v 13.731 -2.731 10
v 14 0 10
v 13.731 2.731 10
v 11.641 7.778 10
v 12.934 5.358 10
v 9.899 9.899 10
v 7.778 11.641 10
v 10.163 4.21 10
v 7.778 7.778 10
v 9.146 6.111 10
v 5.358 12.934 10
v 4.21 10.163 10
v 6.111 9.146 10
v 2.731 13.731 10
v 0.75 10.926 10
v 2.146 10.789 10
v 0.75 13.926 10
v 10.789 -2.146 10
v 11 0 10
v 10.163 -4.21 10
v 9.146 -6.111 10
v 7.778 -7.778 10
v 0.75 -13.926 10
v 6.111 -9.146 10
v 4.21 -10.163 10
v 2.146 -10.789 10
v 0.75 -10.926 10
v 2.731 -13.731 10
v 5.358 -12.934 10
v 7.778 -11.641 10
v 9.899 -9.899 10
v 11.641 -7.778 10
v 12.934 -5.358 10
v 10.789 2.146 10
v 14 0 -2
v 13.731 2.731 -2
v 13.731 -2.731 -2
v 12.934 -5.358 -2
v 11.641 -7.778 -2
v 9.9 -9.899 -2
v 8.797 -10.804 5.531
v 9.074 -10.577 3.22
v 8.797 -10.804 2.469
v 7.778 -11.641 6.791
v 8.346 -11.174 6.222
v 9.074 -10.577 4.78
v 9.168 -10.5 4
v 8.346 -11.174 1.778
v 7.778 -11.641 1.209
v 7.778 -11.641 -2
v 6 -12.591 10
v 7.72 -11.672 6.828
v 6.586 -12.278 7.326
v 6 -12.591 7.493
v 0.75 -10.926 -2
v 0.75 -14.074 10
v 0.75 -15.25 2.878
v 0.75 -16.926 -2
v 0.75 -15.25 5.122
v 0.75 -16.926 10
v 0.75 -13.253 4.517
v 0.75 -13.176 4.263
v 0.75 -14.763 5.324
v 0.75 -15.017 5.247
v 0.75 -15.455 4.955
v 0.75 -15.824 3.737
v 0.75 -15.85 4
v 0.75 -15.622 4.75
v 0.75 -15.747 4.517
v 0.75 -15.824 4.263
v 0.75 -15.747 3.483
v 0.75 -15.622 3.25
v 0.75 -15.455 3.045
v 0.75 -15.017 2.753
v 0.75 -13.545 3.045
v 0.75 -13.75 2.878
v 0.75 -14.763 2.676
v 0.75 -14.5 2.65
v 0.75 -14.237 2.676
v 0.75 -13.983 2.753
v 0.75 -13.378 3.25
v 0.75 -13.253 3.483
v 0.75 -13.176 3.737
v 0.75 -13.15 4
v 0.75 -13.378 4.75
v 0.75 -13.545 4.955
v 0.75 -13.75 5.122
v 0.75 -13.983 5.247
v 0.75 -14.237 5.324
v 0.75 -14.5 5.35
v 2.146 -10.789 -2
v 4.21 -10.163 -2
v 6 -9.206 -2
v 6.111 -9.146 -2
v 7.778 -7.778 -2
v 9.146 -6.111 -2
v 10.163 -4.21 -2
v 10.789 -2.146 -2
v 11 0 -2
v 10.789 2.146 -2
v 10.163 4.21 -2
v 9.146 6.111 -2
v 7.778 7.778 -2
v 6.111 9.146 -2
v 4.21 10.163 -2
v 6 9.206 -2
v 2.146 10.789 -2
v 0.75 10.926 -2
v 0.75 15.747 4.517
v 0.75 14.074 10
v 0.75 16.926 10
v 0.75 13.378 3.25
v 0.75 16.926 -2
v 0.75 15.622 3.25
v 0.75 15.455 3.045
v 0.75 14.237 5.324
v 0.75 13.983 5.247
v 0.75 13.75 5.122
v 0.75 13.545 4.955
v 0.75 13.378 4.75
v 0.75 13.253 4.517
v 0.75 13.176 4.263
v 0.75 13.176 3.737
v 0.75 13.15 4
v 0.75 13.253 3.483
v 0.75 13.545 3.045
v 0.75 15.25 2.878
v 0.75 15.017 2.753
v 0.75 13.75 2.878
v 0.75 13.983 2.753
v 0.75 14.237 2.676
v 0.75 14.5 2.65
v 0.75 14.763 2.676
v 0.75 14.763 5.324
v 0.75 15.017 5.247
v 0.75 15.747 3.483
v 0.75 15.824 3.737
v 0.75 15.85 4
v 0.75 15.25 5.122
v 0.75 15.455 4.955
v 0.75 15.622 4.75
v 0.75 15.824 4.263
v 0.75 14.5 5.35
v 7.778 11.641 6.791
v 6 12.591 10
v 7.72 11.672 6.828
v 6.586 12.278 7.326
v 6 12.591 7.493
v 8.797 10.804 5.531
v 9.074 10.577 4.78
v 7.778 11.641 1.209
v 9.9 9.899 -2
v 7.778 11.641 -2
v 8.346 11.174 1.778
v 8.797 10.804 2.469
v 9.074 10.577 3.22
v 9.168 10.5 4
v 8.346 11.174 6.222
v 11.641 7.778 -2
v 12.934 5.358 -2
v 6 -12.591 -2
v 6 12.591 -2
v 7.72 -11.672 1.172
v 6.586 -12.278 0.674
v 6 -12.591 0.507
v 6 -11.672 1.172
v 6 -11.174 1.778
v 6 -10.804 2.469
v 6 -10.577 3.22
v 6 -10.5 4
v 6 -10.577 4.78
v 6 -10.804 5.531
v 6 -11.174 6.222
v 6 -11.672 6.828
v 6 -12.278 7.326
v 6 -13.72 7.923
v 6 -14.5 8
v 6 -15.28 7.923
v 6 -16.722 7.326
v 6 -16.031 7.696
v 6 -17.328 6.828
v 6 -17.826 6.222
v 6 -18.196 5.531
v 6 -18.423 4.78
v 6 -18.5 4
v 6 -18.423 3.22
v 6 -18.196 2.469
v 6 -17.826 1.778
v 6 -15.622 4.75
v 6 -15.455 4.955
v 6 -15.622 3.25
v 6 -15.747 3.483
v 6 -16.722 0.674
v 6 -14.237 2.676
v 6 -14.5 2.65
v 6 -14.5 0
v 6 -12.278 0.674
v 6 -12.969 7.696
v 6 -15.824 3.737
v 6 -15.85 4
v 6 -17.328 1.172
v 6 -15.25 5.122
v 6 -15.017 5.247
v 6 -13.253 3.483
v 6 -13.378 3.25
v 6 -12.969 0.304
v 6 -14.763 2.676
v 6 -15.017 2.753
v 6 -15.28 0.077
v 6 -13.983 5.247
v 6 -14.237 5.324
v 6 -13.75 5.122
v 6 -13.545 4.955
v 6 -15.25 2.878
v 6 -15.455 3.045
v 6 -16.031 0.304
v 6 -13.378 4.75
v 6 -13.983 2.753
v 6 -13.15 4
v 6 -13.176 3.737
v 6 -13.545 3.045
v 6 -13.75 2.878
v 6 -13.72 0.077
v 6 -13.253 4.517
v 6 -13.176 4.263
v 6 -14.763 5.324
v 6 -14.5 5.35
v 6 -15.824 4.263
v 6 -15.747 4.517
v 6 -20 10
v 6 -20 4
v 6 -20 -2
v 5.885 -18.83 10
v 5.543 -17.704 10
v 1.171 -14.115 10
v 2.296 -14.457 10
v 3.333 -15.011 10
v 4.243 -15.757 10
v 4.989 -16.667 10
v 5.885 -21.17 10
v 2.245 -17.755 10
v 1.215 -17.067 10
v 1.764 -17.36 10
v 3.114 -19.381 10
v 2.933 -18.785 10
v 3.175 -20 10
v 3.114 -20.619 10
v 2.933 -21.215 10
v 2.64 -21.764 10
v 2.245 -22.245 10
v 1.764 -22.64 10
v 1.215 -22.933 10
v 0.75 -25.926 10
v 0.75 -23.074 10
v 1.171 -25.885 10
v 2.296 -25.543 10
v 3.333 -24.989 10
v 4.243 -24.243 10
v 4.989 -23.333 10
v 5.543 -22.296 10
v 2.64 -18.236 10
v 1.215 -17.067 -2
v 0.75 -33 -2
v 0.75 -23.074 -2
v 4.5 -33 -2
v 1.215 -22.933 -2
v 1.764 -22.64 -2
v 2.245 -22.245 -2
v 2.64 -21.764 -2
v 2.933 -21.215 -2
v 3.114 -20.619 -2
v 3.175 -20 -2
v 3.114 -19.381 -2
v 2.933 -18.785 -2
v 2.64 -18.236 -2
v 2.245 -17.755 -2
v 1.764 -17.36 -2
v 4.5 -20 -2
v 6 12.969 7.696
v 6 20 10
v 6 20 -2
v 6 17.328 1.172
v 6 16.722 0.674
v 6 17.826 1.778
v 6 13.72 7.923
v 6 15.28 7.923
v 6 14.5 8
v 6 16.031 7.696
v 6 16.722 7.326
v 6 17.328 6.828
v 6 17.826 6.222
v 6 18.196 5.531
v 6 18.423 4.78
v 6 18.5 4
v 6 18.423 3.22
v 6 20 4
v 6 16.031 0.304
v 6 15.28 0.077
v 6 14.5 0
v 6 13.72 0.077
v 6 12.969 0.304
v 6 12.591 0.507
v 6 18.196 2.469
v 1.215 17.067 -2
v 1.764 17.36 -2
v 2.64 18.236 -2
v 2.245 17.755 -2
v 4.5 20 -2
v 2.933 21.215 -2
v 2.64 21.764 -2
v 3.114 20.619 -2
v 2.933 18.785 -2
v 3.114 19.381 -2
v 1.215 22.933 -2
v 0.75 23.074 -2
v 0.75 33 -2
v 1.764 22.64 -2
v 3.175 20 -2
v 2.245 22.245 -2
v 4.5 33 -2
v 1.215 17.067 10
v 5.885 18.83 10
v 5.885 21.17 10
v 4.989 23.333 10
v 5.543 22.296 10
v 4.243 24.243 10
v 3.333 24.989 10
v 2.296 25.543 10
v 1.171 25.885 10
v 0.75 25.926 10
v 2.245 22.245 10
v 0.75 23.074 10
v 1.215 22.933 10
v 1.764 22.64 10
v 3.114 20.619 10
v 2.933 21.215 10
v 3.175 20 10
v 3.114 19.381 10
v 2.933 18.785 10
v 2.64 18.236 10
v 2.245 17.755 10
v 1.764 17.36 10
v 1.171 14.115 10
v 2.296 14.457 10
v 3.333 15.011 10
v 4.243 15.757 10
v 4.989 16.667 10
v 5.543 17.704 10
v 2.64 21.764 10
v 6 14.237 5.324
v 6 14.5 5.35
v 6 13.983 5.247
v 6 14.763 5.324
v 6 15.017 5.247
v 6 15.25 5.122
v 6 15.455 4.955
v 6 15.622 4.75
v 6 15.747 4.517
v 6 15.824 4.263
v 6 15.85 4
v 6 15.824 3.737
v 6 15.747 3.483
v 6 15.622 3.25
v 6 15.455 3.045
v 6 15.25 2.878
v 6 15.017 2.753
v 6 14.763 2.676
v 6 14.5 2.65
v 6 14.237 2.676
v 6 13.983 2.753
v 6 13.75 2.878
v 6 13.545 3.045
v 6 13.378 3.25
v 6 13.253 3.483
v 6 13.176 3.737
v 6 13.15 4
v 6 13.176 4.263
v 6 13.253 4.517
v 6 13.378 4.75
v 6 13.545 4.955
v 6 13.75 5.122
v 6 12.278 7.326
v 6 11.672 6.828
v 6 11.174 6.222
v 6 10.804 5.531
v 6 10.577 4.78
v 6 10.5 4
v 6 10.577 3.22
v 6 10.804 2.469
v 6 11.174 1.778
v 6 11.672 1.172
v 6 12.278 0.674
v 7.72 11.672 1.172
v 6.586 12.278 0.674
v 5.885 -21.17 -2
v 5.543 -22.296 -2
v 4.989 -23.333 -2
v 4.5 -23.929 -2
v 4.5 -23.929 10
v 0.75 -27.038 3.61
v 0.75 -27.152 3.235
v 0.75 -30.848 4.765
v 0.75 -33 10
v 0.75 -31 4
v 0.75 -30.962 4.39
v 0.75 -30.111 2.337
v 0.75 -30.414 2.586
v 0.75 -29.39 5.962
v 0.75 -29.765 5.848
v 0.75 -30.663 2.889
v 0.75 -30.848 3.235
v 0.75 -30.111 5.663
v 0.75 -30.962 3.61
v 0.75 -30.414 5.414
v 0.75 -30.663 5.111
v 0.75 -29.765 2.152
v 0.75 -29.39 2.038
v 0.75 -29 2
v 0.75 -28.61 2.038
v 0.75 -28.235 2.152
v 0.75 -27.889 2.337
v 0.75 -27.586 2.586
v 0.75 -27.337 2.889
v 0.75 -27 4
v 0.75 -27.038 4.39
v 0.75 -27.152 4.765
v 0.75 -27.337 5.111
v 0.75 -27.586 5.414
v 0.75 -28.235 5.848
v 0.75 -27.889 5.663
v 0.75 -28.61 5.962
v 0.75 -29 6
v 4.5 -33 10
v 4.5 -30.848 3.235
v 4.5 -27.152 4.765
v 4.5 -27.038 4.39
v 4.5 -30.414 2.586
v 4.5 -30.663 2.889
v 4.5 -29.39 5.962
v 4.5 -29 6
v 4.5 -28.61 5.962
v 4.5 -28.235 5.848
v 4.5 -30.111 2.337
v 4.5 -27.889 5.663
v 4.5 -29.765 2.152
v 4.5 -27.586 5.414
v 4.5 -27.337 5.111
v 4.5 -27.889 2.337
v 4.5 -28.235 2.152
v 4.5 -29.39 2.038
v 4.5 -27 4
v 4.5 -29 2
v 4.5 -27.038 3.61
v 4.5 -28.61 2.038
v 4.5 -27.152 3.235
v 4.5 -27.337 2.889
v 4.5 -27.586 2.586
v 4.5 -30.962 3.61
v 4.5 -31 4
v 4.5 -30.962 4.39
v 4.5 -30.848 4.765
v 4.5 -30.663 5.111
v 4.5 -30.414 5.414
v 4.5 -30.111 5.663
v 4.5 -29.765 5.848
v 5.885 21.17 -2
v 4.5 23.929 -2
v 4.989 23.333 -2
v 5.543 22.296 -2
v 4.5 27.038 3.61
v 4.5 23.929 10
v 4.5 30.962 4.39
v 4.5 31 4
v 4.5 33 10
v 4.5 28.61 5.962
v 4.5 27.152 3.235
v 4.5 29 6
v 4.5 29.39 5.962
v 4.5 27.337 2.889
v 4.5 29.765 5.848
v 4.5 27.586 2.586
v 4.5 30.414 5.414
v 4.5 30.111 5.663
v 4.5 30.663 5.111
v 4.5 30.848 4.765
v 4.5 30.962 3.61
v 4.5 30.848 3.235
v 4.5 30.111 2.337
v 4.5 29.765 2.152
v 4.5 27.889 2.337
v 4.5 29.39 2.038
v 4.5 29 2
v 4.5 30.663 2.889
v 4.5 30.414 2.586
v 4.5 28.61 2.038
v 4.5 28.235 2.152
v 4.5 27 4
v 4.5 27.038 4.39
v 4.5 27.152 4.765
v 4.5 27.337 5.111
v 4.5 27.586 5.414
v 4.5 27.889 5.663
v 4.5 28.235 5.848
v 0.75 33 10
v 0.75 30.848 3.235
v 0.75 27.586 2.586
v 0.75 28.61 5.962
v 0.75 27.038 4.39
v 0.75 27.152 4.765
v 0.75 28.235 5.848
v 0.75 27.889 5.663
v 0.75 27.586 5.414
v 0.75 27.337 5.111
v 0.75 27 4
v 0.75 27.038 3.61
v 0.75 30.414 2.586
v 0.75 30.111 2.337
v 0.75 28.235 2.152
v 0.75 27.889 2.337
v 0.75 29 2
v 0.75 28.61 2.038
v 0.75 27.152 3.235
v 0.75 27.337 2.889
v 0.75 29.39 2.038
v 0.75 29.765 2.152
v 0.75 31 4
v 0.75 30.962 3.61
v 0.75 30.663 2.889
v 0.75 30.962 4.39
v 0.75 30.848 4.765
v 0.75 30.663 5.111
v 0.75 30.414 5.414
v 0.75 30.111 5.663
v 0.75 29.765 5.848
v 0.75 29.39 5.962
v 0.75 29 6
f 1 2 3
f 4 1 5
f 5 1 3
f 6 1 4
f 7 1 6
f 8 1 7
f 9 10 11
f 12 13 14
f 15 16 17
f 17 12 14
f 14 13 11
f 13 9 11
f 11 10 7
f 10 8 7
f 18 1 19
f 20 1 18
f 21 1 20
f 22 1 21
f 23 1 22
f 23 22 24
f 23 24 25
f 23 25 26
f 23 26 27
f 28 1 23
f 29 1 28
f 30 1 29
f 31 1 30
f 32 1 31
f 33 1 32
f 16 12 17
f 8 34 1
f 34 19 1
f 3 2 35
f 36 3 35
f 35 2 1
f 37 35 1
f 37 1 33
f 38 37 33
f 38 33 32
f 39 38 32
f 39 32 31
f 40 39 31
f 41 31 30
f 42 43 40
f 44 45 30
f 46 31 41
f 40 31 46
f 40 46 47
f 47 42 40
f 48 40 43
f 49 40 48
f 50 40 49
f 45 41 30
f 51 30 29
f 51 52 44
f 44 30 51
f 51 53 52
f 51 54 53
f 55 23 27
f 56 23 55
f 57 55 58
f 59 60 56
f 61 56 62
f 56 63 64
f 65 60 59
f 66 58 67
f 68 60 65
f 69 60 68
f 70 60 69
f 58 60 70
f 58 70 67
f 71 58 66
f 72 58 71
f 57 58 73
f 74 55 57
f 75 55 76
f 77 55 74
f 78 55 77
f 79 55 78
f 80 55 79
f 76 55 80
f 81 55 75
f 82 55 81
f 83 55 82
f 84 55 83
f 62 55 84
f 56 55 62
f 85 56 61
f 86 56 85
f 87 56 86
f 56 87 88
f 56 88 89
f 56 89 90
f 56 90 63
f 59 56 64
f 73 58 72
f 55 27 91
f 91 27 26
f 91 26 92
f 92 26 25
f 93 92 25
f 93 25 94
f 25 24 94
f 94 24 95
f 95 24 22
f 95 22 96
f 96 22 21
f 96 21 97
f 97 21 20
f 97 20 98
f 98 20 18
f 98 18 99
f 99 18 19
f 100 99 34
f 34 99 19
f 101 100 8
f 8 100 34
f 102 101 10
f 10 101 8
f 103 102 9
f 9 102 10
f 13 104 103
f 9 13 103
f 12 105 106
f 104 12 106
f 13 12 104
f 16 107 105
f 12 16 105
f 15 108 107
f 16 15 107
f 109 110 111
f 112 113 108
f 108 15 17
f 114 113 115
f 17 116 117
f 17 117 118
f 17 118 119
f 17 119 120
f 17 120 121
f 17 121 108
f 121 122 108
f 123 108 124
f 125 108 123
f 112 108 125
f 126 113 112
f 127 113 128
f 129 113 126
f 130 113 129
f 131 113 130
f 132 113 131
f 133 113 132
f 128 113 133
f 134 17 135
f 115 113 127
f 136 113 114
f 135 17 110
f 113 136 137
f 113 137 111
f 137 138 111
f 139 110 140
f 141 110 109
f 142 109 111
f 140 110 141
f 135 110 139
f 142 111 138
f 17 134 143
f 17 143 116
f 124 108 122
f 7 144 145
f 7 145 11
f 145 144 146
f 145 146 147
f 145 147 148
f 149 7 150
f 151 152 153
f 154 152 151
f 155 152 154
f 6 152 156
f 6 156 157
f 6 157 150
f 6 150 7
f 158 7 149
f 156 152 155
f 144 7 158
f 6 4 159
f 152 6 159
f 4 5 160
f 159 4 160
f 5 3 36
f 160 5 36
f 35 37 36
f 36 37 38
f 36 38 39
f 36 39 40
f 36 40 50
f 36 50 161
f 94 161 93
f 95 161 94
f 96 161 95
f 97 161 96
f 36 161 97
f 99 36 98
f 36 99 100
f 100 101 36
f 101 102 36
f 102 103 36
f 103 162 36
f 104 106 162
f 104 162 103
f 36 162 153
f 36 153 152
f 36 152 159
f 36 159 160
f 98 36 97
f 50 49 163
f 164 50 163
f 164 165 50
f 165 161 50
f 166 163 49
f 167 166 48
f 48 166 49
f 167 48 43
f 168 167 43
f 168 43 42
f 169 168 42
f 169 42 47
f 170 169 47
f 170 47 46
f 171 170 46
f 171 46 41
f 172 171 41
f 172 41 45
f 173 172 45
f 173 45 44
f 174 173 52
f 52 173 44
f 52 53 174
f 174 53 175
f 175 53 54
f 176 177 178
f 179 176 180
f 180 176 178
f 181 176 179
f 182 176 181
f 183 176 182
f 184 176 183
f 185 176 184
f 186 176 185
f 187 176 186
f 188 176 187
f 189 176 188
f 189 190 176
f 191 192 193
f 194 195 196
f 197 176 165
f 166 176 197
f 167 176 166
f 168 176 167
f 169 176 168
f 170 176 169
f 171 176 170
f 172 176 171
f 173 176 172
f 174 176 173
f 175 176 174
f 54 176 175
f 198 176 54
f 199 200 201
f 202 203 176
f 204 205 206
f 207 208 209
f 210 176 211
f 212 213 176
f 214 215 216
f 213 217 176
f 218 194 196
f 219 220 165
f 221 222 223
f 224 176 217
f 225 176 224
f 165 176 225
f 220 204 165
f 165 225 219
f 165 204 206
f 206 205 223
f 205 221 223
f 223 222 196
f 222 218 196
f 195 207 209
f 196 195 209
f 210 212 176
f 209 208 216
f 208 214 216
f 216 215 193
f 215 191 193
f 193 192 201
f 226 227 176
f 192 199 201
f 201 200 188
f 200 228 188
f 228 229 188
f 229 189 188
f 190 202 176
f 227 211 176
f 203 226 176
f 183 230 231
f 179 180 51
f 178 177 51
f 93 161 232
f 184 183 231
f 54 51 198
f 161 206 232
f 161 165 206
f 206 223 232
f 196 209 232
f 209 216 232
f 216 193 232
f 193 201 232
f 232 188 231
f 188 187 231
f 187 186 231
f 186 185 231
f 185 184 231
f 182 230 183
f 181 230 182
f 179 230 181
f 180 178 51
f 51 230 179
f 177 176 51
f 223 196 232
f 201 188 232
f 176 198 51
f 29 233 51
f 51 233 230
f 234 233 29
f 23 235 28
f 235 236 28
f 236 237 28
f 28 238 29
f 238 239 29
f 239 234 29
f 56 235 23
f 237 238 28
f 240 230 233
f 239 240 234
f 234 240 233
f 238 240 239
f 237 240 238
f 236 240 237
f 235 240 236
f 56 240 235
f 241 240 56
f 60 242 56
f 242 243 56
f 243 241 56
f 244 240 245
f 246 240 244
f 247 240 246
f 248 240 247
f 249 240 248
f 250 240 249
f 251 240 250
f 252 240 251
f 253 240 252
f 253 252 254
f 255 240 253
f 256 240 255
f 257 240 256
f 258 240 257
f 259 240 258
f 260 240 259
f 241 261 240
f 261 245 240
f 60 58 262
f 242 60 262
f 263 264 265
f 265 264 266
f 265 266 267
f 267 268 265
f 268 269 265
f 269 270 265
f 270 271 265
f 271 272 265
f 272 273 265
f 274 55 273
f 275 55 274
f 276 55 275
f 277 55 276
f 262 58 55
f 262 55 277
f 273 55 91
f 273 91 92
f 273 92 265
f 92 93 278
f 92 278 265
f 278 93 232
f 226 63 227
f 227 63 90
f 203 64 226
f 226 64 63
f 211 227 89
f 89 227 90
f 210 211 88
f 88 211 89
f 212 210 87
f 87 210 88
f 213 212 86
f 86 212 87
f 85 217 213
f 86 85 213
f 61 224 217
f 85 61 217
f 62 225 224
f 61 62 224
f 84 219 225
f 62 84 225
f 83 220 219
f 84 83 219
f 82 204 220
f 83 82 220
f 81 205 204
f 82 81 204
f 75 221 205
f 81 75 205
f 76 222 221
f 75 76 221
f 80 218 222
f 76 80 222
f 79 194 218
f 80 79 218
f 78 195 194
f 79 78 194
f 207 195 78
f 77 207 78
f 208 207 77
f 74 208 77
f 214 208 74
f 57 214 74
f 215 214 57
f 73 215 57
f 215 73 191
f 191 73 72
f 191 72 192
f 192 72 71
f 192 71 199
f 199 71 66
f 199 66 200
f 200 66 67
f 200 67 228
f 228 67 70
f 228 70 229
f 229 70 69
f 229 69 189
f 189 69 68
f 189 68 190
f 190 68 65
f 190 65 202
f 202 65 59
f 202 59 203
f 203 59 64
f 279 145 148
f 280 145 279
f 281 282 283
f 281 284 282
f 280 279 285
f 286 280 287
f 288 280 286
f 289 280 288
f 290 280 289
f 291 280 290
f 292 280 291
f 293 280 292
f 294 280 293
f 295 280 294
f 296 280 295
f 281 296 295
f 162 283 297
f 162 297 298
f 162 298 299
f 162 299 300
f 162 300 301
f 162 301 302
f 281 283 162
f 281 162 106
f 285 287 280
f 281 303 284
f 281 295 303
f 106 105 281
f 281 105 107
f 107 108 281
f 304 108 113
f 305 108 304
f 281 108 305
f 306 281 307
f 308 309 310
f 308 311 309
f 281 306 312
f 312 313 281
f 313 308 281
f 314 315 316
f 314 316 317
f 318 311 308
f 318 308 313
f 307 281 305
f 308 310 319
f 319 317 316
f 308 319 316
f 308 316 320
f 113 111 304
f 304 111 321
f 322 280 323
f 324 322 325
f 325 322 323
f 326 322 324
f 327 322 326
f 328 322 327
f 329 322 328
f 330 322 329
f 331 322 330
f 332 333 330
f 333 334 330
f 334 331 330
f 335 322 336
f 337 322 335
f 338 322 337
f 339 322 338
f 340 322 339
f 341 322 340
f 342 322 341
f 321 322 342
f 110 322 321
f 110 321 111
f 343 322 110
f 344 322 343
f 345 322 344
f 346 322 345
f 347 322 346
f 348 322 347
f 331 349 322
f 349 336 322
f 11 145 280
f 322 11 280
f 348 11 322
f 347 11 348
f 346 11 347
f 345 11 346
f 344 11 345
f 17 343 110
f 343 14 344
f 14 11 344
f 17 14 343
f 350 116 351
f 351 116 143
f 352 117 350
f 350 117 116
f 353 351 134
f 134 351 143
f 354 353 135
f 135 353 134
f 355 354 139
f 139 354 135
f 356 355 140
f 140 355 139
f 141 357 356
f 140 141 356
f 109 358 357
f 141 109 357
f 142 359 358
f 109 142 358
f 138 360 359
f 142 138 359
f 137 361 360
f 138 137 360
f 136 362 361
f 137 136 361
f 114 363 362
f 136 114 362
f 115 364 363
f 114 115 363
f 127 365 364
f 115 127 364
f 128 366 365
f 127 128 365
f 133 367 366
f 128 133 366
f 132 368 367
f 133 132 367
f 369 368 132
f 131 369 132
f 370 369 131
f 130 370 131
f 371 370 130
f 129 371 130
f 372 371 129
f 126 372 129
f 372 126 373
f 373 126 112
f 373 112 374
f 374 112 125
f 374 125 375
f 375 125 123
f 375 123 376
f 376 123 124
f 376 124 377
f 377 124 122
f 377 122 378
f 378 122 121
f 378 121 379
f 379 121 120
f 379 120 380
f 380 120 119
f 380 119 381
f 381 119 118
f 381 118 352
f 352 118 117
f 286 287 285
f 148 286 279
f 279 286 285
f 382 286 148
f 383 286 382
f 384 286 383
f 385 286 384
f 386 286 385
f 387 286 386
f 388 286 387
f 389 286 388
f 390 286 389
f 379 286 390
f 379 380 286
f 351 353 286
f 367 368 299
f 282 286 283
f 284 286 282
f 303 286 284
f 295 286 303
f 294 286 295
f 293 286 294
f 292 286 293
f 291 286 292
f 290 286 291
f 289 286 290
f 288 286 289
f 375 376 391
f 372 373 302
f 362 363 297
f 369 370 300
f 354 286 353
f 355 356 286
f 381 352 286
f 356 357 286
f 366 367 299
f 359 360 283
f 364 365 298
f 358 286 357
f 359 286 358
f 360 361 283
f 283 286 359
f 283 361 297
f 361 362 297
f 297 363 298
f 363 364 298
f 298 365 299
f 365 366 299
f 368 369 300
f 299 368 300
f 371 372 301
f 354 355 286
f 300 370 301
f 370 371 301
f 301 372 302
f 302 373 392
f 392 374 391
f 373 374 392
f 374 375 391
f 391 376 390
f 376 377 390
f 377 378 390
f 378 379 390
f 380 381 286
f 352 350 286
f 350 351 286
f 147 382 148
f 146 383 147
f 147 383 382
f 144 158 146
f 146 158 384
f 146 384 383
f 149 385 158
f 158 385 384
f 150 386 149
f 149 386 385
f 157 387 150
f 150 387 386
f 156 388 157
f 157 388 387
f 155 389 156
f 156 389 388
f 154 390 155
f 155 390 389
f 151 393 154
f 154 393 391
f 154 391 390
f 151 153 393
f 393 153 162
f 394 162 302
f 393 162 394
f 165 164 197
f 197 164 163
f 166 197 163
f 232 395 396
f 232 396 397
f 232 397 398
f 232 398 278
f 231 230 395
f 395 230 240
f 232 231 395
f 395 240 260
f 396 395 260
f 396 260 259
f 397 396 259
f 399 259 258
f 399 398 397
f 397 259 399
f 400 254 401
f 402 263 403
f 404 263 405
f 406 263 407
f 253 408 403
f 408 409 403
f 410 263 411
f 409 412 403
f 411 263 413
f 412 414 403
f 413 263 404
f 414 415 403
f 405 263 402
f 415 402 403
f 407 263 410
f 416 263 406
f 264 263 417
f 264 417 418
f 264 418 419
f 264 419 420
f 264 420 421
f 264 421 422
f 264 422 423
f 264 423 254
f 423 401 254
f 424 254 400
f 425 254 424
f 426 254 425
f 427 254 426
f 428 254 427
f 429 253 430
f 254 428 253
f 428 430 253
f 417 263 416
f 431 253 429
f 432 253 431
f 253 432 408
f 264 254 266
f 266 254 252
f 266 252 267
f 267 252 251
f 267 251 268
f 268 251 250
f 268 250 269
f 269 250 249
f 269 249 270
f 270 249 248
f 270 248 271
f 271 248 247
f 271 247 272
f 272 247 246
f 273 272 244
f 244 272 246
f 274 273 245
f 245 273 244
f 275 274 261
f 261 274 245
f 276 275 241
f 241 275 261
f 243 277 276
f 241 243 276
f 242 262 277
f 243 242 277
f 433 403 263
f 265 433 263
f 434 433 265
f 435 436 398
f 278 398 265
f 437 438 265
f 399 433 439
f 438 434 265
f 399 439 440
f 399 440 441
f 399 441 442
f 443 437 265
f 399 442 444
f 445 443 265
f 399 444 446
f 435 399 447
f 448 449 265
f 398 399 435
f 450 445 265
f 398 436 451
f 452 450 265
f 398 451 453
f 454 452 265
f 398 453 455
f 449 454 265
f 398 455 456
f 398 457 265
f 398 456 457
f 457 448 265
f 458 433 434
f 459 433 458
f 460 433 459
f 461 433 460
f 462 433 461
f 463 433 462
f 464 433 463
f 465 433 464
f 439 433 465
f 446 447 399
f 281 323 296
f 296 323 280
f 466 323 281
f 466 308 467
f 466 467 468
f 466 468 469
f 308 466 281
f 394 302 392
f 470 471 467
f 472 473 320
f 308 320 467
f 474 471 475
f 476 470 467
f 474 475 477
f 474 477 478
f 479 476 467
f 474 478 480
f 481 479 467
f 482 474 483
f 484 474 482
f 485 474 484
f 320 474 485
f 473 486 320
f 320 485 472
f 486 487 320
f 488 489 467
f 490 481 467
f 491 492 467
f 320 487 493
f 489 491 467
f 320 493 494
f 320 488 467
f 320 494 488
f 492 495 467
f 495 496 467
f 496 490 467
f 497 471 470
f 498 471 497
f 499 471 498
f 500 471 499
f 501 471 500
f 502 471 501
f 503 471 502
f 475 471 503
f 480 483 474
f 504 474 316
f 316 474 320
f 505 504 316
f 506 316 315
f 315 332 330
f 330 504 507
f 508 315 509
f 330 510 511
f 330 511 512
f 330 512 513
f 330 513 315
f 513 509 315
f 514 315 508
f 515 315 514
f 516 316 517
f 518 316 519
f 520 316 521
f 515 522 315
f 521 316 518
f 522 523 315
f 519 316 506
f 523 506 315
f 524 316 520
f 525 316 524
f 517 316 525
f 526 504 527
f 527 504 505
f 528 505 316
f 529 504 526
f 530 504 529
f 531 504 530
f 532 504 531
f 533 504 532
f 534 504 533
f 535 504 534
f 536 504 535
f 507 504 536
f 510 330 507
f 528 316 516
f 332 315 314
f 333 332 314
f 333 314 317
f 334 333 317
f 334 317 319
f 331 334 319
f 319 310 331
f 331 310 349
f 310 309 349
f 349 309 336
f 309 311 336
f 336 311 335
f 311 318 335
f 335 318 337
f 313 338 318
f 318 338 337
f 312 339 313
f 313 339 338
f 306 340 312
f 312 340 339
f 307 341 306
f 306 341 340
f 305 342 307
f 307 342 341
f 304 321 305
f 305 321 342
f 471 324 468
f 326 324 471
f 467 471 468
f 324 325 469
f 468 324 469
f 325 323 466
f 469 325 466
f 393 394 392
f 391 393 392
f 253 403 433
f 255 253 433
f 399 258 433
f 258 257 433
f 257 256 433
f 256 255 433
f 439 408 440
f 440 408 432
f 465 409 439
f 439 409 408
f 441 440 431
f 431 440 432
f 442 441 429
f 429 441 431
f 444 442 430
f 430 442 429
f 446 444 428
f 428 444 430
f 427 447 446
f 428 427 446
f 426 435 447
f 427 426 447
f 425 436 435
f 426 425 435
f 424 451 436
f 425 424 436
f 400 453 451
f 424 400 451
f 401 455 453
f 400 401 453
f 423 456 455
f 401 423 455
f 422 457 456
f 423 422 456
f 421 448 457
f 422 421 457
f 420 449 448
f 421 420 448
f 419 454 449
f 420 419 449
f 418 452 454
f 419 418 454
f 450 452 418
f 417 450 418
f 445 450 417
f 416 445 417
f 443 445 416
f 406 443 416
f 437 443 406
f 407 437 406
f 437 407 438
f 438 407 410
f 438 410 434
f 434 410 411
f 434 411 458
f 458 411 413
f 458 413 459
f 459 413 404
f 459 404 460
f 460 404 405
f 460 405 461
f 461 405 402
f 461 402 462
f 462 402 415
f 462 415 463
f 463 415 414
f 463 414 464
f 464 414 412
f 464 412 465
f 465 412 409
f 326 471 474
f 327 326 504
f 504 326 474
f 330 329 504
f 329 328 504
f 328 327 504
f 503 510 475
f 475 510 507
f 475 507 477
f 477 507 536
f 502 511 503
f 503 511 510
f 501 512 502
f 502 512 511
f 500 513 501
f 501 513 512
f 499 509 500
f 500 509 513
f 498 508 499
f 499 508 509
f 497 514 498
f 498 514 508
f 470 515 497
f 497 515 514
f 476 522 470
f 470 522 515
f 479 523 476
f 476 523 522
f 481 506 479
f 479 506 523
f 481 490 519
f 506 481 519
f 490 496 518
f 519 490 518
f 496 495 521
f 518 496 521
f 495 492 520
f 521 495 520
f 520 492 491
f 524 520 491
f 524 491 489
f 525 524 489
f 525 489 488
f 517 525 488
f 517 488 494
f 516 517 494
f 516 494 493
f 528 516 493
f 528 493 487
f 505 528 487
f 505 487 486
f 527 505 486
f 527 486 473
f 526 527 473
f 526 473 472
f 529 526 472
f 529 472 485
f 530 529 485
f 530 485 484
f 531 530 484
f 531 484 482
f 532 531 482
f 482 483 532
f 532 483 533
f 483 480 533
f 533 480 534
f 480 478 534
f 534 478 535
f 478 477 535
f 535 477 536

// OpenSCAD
// file: cherry.scad
module cherry()
{
	difference()
	{
		cube([28,16,10], center=true);
		translate([11,5,0]) cylinder(h=12,r=3.3/2, center=true, $fn=32);
		translate([-11,-5,0]) cylinder(h=12,r=3.3/2, center=true, $fn=32);
	}
}
// file: sidemount.scad
include <cherry.scad>

module sidemount()
{
	difference()
	{
		union()
		{
			difference() 
			{
				translate([0,0,-8]) cube([12,66,25],center=true);
				translate([0,28,-13.5]) cube([13,16,20],center=true);
				translate([0,-28,-13.5]) cube([13,16,20],center=true);
			}

			translate([0,-20,0]) rotate([0,90,0]) cylinder(h=12,r=12/2,center=true,$fn=32);
			translate([0,20,0]) rotate([0,90,0]) cylinder(h=12,r=12/2,center=true,$fn=32);
			translate([0,0,0]) rotate([0,90,0]) cylinder(h=12,r=28/2,center=true,$fn=32);
			translate([0,0,4]) cube([12,40,4],center=true);

			difference() 
			{
				translate([-12,0,-17.5]) cube([36,40,7], center=true);
				rotate([0,0,90]) 
				{
					translate([11,26,-16.5]) cylinder(h=10,r=2.7/2, center=true, $fn=32);
					translate([-11,16,-16.5]) cylinder(h=10,r=2.7/2, center=true, $fn=32);
				}
			
				translate([-18,0,-17.5]) cylinder(h=10,r=8.5/2,center=true);
				translate([-18,0,-15.5]) cylinder(h=6,r=14.5/2,center=true);
			}

			rotate([0,0,90]) translate([0,21,-9.0]) cherry();

		}

		translate([0,-29,-2.5]) cylinder(r=3.3, h=2.3, center=true, $fn=6);
		translate([0,-29,0]) cylinder(r=4/2, h=10, center=true, $fn=32);
		
		translate([0,29,-2.5]) cylinder(r=3.3, h=2.3, center=true, $fn=6);
		translate([0,29,0]) cylinder(r=4/2, h=10, center=true, $fn=32);

		translate([0,-14.5,-3]) cylinder(r=2.7/2, h=20, center=true, $fn=32);
		translate([0,14.5,-3]) cylinder(r=2.7/2, h=20, center=true, $fn=32);

		translate([0,-14.5,11]) cylinder(r=8/2, h=10, center=true, $fn=32);
		translate([0,14.5,11]) cylinder(r=8/2, h=10, center=true, $fn=32);

		translate([0,0,0.25]) cube([13,68,1],center=true);
		rotate([0,90,0]) 
		{
			cylinder(h=14,r=22/2,center=true,$fn=32);
			translate([ 0 ,20,0]) cylinder(h=20,r=6.35/2,center=true, $fn=32);
			translate([ 0 ,0,0]) cylinder(h=20,r=6.35/2,center=true, $fn=32);
			translate([ 0 ,-20,0]) cylinder(h=20,r=6.35/2,center=true, $fn=32);
		}
	}
}
// main file
include <sidemount.scad>

module sidemounttop()
{
	translate([0,0,4]) rotate([0,90,0])difference()
	{
		sidemount();
		translate([0,0,-16]) cube([80,80,32], center=true);
	}
}

sidemounttop();
